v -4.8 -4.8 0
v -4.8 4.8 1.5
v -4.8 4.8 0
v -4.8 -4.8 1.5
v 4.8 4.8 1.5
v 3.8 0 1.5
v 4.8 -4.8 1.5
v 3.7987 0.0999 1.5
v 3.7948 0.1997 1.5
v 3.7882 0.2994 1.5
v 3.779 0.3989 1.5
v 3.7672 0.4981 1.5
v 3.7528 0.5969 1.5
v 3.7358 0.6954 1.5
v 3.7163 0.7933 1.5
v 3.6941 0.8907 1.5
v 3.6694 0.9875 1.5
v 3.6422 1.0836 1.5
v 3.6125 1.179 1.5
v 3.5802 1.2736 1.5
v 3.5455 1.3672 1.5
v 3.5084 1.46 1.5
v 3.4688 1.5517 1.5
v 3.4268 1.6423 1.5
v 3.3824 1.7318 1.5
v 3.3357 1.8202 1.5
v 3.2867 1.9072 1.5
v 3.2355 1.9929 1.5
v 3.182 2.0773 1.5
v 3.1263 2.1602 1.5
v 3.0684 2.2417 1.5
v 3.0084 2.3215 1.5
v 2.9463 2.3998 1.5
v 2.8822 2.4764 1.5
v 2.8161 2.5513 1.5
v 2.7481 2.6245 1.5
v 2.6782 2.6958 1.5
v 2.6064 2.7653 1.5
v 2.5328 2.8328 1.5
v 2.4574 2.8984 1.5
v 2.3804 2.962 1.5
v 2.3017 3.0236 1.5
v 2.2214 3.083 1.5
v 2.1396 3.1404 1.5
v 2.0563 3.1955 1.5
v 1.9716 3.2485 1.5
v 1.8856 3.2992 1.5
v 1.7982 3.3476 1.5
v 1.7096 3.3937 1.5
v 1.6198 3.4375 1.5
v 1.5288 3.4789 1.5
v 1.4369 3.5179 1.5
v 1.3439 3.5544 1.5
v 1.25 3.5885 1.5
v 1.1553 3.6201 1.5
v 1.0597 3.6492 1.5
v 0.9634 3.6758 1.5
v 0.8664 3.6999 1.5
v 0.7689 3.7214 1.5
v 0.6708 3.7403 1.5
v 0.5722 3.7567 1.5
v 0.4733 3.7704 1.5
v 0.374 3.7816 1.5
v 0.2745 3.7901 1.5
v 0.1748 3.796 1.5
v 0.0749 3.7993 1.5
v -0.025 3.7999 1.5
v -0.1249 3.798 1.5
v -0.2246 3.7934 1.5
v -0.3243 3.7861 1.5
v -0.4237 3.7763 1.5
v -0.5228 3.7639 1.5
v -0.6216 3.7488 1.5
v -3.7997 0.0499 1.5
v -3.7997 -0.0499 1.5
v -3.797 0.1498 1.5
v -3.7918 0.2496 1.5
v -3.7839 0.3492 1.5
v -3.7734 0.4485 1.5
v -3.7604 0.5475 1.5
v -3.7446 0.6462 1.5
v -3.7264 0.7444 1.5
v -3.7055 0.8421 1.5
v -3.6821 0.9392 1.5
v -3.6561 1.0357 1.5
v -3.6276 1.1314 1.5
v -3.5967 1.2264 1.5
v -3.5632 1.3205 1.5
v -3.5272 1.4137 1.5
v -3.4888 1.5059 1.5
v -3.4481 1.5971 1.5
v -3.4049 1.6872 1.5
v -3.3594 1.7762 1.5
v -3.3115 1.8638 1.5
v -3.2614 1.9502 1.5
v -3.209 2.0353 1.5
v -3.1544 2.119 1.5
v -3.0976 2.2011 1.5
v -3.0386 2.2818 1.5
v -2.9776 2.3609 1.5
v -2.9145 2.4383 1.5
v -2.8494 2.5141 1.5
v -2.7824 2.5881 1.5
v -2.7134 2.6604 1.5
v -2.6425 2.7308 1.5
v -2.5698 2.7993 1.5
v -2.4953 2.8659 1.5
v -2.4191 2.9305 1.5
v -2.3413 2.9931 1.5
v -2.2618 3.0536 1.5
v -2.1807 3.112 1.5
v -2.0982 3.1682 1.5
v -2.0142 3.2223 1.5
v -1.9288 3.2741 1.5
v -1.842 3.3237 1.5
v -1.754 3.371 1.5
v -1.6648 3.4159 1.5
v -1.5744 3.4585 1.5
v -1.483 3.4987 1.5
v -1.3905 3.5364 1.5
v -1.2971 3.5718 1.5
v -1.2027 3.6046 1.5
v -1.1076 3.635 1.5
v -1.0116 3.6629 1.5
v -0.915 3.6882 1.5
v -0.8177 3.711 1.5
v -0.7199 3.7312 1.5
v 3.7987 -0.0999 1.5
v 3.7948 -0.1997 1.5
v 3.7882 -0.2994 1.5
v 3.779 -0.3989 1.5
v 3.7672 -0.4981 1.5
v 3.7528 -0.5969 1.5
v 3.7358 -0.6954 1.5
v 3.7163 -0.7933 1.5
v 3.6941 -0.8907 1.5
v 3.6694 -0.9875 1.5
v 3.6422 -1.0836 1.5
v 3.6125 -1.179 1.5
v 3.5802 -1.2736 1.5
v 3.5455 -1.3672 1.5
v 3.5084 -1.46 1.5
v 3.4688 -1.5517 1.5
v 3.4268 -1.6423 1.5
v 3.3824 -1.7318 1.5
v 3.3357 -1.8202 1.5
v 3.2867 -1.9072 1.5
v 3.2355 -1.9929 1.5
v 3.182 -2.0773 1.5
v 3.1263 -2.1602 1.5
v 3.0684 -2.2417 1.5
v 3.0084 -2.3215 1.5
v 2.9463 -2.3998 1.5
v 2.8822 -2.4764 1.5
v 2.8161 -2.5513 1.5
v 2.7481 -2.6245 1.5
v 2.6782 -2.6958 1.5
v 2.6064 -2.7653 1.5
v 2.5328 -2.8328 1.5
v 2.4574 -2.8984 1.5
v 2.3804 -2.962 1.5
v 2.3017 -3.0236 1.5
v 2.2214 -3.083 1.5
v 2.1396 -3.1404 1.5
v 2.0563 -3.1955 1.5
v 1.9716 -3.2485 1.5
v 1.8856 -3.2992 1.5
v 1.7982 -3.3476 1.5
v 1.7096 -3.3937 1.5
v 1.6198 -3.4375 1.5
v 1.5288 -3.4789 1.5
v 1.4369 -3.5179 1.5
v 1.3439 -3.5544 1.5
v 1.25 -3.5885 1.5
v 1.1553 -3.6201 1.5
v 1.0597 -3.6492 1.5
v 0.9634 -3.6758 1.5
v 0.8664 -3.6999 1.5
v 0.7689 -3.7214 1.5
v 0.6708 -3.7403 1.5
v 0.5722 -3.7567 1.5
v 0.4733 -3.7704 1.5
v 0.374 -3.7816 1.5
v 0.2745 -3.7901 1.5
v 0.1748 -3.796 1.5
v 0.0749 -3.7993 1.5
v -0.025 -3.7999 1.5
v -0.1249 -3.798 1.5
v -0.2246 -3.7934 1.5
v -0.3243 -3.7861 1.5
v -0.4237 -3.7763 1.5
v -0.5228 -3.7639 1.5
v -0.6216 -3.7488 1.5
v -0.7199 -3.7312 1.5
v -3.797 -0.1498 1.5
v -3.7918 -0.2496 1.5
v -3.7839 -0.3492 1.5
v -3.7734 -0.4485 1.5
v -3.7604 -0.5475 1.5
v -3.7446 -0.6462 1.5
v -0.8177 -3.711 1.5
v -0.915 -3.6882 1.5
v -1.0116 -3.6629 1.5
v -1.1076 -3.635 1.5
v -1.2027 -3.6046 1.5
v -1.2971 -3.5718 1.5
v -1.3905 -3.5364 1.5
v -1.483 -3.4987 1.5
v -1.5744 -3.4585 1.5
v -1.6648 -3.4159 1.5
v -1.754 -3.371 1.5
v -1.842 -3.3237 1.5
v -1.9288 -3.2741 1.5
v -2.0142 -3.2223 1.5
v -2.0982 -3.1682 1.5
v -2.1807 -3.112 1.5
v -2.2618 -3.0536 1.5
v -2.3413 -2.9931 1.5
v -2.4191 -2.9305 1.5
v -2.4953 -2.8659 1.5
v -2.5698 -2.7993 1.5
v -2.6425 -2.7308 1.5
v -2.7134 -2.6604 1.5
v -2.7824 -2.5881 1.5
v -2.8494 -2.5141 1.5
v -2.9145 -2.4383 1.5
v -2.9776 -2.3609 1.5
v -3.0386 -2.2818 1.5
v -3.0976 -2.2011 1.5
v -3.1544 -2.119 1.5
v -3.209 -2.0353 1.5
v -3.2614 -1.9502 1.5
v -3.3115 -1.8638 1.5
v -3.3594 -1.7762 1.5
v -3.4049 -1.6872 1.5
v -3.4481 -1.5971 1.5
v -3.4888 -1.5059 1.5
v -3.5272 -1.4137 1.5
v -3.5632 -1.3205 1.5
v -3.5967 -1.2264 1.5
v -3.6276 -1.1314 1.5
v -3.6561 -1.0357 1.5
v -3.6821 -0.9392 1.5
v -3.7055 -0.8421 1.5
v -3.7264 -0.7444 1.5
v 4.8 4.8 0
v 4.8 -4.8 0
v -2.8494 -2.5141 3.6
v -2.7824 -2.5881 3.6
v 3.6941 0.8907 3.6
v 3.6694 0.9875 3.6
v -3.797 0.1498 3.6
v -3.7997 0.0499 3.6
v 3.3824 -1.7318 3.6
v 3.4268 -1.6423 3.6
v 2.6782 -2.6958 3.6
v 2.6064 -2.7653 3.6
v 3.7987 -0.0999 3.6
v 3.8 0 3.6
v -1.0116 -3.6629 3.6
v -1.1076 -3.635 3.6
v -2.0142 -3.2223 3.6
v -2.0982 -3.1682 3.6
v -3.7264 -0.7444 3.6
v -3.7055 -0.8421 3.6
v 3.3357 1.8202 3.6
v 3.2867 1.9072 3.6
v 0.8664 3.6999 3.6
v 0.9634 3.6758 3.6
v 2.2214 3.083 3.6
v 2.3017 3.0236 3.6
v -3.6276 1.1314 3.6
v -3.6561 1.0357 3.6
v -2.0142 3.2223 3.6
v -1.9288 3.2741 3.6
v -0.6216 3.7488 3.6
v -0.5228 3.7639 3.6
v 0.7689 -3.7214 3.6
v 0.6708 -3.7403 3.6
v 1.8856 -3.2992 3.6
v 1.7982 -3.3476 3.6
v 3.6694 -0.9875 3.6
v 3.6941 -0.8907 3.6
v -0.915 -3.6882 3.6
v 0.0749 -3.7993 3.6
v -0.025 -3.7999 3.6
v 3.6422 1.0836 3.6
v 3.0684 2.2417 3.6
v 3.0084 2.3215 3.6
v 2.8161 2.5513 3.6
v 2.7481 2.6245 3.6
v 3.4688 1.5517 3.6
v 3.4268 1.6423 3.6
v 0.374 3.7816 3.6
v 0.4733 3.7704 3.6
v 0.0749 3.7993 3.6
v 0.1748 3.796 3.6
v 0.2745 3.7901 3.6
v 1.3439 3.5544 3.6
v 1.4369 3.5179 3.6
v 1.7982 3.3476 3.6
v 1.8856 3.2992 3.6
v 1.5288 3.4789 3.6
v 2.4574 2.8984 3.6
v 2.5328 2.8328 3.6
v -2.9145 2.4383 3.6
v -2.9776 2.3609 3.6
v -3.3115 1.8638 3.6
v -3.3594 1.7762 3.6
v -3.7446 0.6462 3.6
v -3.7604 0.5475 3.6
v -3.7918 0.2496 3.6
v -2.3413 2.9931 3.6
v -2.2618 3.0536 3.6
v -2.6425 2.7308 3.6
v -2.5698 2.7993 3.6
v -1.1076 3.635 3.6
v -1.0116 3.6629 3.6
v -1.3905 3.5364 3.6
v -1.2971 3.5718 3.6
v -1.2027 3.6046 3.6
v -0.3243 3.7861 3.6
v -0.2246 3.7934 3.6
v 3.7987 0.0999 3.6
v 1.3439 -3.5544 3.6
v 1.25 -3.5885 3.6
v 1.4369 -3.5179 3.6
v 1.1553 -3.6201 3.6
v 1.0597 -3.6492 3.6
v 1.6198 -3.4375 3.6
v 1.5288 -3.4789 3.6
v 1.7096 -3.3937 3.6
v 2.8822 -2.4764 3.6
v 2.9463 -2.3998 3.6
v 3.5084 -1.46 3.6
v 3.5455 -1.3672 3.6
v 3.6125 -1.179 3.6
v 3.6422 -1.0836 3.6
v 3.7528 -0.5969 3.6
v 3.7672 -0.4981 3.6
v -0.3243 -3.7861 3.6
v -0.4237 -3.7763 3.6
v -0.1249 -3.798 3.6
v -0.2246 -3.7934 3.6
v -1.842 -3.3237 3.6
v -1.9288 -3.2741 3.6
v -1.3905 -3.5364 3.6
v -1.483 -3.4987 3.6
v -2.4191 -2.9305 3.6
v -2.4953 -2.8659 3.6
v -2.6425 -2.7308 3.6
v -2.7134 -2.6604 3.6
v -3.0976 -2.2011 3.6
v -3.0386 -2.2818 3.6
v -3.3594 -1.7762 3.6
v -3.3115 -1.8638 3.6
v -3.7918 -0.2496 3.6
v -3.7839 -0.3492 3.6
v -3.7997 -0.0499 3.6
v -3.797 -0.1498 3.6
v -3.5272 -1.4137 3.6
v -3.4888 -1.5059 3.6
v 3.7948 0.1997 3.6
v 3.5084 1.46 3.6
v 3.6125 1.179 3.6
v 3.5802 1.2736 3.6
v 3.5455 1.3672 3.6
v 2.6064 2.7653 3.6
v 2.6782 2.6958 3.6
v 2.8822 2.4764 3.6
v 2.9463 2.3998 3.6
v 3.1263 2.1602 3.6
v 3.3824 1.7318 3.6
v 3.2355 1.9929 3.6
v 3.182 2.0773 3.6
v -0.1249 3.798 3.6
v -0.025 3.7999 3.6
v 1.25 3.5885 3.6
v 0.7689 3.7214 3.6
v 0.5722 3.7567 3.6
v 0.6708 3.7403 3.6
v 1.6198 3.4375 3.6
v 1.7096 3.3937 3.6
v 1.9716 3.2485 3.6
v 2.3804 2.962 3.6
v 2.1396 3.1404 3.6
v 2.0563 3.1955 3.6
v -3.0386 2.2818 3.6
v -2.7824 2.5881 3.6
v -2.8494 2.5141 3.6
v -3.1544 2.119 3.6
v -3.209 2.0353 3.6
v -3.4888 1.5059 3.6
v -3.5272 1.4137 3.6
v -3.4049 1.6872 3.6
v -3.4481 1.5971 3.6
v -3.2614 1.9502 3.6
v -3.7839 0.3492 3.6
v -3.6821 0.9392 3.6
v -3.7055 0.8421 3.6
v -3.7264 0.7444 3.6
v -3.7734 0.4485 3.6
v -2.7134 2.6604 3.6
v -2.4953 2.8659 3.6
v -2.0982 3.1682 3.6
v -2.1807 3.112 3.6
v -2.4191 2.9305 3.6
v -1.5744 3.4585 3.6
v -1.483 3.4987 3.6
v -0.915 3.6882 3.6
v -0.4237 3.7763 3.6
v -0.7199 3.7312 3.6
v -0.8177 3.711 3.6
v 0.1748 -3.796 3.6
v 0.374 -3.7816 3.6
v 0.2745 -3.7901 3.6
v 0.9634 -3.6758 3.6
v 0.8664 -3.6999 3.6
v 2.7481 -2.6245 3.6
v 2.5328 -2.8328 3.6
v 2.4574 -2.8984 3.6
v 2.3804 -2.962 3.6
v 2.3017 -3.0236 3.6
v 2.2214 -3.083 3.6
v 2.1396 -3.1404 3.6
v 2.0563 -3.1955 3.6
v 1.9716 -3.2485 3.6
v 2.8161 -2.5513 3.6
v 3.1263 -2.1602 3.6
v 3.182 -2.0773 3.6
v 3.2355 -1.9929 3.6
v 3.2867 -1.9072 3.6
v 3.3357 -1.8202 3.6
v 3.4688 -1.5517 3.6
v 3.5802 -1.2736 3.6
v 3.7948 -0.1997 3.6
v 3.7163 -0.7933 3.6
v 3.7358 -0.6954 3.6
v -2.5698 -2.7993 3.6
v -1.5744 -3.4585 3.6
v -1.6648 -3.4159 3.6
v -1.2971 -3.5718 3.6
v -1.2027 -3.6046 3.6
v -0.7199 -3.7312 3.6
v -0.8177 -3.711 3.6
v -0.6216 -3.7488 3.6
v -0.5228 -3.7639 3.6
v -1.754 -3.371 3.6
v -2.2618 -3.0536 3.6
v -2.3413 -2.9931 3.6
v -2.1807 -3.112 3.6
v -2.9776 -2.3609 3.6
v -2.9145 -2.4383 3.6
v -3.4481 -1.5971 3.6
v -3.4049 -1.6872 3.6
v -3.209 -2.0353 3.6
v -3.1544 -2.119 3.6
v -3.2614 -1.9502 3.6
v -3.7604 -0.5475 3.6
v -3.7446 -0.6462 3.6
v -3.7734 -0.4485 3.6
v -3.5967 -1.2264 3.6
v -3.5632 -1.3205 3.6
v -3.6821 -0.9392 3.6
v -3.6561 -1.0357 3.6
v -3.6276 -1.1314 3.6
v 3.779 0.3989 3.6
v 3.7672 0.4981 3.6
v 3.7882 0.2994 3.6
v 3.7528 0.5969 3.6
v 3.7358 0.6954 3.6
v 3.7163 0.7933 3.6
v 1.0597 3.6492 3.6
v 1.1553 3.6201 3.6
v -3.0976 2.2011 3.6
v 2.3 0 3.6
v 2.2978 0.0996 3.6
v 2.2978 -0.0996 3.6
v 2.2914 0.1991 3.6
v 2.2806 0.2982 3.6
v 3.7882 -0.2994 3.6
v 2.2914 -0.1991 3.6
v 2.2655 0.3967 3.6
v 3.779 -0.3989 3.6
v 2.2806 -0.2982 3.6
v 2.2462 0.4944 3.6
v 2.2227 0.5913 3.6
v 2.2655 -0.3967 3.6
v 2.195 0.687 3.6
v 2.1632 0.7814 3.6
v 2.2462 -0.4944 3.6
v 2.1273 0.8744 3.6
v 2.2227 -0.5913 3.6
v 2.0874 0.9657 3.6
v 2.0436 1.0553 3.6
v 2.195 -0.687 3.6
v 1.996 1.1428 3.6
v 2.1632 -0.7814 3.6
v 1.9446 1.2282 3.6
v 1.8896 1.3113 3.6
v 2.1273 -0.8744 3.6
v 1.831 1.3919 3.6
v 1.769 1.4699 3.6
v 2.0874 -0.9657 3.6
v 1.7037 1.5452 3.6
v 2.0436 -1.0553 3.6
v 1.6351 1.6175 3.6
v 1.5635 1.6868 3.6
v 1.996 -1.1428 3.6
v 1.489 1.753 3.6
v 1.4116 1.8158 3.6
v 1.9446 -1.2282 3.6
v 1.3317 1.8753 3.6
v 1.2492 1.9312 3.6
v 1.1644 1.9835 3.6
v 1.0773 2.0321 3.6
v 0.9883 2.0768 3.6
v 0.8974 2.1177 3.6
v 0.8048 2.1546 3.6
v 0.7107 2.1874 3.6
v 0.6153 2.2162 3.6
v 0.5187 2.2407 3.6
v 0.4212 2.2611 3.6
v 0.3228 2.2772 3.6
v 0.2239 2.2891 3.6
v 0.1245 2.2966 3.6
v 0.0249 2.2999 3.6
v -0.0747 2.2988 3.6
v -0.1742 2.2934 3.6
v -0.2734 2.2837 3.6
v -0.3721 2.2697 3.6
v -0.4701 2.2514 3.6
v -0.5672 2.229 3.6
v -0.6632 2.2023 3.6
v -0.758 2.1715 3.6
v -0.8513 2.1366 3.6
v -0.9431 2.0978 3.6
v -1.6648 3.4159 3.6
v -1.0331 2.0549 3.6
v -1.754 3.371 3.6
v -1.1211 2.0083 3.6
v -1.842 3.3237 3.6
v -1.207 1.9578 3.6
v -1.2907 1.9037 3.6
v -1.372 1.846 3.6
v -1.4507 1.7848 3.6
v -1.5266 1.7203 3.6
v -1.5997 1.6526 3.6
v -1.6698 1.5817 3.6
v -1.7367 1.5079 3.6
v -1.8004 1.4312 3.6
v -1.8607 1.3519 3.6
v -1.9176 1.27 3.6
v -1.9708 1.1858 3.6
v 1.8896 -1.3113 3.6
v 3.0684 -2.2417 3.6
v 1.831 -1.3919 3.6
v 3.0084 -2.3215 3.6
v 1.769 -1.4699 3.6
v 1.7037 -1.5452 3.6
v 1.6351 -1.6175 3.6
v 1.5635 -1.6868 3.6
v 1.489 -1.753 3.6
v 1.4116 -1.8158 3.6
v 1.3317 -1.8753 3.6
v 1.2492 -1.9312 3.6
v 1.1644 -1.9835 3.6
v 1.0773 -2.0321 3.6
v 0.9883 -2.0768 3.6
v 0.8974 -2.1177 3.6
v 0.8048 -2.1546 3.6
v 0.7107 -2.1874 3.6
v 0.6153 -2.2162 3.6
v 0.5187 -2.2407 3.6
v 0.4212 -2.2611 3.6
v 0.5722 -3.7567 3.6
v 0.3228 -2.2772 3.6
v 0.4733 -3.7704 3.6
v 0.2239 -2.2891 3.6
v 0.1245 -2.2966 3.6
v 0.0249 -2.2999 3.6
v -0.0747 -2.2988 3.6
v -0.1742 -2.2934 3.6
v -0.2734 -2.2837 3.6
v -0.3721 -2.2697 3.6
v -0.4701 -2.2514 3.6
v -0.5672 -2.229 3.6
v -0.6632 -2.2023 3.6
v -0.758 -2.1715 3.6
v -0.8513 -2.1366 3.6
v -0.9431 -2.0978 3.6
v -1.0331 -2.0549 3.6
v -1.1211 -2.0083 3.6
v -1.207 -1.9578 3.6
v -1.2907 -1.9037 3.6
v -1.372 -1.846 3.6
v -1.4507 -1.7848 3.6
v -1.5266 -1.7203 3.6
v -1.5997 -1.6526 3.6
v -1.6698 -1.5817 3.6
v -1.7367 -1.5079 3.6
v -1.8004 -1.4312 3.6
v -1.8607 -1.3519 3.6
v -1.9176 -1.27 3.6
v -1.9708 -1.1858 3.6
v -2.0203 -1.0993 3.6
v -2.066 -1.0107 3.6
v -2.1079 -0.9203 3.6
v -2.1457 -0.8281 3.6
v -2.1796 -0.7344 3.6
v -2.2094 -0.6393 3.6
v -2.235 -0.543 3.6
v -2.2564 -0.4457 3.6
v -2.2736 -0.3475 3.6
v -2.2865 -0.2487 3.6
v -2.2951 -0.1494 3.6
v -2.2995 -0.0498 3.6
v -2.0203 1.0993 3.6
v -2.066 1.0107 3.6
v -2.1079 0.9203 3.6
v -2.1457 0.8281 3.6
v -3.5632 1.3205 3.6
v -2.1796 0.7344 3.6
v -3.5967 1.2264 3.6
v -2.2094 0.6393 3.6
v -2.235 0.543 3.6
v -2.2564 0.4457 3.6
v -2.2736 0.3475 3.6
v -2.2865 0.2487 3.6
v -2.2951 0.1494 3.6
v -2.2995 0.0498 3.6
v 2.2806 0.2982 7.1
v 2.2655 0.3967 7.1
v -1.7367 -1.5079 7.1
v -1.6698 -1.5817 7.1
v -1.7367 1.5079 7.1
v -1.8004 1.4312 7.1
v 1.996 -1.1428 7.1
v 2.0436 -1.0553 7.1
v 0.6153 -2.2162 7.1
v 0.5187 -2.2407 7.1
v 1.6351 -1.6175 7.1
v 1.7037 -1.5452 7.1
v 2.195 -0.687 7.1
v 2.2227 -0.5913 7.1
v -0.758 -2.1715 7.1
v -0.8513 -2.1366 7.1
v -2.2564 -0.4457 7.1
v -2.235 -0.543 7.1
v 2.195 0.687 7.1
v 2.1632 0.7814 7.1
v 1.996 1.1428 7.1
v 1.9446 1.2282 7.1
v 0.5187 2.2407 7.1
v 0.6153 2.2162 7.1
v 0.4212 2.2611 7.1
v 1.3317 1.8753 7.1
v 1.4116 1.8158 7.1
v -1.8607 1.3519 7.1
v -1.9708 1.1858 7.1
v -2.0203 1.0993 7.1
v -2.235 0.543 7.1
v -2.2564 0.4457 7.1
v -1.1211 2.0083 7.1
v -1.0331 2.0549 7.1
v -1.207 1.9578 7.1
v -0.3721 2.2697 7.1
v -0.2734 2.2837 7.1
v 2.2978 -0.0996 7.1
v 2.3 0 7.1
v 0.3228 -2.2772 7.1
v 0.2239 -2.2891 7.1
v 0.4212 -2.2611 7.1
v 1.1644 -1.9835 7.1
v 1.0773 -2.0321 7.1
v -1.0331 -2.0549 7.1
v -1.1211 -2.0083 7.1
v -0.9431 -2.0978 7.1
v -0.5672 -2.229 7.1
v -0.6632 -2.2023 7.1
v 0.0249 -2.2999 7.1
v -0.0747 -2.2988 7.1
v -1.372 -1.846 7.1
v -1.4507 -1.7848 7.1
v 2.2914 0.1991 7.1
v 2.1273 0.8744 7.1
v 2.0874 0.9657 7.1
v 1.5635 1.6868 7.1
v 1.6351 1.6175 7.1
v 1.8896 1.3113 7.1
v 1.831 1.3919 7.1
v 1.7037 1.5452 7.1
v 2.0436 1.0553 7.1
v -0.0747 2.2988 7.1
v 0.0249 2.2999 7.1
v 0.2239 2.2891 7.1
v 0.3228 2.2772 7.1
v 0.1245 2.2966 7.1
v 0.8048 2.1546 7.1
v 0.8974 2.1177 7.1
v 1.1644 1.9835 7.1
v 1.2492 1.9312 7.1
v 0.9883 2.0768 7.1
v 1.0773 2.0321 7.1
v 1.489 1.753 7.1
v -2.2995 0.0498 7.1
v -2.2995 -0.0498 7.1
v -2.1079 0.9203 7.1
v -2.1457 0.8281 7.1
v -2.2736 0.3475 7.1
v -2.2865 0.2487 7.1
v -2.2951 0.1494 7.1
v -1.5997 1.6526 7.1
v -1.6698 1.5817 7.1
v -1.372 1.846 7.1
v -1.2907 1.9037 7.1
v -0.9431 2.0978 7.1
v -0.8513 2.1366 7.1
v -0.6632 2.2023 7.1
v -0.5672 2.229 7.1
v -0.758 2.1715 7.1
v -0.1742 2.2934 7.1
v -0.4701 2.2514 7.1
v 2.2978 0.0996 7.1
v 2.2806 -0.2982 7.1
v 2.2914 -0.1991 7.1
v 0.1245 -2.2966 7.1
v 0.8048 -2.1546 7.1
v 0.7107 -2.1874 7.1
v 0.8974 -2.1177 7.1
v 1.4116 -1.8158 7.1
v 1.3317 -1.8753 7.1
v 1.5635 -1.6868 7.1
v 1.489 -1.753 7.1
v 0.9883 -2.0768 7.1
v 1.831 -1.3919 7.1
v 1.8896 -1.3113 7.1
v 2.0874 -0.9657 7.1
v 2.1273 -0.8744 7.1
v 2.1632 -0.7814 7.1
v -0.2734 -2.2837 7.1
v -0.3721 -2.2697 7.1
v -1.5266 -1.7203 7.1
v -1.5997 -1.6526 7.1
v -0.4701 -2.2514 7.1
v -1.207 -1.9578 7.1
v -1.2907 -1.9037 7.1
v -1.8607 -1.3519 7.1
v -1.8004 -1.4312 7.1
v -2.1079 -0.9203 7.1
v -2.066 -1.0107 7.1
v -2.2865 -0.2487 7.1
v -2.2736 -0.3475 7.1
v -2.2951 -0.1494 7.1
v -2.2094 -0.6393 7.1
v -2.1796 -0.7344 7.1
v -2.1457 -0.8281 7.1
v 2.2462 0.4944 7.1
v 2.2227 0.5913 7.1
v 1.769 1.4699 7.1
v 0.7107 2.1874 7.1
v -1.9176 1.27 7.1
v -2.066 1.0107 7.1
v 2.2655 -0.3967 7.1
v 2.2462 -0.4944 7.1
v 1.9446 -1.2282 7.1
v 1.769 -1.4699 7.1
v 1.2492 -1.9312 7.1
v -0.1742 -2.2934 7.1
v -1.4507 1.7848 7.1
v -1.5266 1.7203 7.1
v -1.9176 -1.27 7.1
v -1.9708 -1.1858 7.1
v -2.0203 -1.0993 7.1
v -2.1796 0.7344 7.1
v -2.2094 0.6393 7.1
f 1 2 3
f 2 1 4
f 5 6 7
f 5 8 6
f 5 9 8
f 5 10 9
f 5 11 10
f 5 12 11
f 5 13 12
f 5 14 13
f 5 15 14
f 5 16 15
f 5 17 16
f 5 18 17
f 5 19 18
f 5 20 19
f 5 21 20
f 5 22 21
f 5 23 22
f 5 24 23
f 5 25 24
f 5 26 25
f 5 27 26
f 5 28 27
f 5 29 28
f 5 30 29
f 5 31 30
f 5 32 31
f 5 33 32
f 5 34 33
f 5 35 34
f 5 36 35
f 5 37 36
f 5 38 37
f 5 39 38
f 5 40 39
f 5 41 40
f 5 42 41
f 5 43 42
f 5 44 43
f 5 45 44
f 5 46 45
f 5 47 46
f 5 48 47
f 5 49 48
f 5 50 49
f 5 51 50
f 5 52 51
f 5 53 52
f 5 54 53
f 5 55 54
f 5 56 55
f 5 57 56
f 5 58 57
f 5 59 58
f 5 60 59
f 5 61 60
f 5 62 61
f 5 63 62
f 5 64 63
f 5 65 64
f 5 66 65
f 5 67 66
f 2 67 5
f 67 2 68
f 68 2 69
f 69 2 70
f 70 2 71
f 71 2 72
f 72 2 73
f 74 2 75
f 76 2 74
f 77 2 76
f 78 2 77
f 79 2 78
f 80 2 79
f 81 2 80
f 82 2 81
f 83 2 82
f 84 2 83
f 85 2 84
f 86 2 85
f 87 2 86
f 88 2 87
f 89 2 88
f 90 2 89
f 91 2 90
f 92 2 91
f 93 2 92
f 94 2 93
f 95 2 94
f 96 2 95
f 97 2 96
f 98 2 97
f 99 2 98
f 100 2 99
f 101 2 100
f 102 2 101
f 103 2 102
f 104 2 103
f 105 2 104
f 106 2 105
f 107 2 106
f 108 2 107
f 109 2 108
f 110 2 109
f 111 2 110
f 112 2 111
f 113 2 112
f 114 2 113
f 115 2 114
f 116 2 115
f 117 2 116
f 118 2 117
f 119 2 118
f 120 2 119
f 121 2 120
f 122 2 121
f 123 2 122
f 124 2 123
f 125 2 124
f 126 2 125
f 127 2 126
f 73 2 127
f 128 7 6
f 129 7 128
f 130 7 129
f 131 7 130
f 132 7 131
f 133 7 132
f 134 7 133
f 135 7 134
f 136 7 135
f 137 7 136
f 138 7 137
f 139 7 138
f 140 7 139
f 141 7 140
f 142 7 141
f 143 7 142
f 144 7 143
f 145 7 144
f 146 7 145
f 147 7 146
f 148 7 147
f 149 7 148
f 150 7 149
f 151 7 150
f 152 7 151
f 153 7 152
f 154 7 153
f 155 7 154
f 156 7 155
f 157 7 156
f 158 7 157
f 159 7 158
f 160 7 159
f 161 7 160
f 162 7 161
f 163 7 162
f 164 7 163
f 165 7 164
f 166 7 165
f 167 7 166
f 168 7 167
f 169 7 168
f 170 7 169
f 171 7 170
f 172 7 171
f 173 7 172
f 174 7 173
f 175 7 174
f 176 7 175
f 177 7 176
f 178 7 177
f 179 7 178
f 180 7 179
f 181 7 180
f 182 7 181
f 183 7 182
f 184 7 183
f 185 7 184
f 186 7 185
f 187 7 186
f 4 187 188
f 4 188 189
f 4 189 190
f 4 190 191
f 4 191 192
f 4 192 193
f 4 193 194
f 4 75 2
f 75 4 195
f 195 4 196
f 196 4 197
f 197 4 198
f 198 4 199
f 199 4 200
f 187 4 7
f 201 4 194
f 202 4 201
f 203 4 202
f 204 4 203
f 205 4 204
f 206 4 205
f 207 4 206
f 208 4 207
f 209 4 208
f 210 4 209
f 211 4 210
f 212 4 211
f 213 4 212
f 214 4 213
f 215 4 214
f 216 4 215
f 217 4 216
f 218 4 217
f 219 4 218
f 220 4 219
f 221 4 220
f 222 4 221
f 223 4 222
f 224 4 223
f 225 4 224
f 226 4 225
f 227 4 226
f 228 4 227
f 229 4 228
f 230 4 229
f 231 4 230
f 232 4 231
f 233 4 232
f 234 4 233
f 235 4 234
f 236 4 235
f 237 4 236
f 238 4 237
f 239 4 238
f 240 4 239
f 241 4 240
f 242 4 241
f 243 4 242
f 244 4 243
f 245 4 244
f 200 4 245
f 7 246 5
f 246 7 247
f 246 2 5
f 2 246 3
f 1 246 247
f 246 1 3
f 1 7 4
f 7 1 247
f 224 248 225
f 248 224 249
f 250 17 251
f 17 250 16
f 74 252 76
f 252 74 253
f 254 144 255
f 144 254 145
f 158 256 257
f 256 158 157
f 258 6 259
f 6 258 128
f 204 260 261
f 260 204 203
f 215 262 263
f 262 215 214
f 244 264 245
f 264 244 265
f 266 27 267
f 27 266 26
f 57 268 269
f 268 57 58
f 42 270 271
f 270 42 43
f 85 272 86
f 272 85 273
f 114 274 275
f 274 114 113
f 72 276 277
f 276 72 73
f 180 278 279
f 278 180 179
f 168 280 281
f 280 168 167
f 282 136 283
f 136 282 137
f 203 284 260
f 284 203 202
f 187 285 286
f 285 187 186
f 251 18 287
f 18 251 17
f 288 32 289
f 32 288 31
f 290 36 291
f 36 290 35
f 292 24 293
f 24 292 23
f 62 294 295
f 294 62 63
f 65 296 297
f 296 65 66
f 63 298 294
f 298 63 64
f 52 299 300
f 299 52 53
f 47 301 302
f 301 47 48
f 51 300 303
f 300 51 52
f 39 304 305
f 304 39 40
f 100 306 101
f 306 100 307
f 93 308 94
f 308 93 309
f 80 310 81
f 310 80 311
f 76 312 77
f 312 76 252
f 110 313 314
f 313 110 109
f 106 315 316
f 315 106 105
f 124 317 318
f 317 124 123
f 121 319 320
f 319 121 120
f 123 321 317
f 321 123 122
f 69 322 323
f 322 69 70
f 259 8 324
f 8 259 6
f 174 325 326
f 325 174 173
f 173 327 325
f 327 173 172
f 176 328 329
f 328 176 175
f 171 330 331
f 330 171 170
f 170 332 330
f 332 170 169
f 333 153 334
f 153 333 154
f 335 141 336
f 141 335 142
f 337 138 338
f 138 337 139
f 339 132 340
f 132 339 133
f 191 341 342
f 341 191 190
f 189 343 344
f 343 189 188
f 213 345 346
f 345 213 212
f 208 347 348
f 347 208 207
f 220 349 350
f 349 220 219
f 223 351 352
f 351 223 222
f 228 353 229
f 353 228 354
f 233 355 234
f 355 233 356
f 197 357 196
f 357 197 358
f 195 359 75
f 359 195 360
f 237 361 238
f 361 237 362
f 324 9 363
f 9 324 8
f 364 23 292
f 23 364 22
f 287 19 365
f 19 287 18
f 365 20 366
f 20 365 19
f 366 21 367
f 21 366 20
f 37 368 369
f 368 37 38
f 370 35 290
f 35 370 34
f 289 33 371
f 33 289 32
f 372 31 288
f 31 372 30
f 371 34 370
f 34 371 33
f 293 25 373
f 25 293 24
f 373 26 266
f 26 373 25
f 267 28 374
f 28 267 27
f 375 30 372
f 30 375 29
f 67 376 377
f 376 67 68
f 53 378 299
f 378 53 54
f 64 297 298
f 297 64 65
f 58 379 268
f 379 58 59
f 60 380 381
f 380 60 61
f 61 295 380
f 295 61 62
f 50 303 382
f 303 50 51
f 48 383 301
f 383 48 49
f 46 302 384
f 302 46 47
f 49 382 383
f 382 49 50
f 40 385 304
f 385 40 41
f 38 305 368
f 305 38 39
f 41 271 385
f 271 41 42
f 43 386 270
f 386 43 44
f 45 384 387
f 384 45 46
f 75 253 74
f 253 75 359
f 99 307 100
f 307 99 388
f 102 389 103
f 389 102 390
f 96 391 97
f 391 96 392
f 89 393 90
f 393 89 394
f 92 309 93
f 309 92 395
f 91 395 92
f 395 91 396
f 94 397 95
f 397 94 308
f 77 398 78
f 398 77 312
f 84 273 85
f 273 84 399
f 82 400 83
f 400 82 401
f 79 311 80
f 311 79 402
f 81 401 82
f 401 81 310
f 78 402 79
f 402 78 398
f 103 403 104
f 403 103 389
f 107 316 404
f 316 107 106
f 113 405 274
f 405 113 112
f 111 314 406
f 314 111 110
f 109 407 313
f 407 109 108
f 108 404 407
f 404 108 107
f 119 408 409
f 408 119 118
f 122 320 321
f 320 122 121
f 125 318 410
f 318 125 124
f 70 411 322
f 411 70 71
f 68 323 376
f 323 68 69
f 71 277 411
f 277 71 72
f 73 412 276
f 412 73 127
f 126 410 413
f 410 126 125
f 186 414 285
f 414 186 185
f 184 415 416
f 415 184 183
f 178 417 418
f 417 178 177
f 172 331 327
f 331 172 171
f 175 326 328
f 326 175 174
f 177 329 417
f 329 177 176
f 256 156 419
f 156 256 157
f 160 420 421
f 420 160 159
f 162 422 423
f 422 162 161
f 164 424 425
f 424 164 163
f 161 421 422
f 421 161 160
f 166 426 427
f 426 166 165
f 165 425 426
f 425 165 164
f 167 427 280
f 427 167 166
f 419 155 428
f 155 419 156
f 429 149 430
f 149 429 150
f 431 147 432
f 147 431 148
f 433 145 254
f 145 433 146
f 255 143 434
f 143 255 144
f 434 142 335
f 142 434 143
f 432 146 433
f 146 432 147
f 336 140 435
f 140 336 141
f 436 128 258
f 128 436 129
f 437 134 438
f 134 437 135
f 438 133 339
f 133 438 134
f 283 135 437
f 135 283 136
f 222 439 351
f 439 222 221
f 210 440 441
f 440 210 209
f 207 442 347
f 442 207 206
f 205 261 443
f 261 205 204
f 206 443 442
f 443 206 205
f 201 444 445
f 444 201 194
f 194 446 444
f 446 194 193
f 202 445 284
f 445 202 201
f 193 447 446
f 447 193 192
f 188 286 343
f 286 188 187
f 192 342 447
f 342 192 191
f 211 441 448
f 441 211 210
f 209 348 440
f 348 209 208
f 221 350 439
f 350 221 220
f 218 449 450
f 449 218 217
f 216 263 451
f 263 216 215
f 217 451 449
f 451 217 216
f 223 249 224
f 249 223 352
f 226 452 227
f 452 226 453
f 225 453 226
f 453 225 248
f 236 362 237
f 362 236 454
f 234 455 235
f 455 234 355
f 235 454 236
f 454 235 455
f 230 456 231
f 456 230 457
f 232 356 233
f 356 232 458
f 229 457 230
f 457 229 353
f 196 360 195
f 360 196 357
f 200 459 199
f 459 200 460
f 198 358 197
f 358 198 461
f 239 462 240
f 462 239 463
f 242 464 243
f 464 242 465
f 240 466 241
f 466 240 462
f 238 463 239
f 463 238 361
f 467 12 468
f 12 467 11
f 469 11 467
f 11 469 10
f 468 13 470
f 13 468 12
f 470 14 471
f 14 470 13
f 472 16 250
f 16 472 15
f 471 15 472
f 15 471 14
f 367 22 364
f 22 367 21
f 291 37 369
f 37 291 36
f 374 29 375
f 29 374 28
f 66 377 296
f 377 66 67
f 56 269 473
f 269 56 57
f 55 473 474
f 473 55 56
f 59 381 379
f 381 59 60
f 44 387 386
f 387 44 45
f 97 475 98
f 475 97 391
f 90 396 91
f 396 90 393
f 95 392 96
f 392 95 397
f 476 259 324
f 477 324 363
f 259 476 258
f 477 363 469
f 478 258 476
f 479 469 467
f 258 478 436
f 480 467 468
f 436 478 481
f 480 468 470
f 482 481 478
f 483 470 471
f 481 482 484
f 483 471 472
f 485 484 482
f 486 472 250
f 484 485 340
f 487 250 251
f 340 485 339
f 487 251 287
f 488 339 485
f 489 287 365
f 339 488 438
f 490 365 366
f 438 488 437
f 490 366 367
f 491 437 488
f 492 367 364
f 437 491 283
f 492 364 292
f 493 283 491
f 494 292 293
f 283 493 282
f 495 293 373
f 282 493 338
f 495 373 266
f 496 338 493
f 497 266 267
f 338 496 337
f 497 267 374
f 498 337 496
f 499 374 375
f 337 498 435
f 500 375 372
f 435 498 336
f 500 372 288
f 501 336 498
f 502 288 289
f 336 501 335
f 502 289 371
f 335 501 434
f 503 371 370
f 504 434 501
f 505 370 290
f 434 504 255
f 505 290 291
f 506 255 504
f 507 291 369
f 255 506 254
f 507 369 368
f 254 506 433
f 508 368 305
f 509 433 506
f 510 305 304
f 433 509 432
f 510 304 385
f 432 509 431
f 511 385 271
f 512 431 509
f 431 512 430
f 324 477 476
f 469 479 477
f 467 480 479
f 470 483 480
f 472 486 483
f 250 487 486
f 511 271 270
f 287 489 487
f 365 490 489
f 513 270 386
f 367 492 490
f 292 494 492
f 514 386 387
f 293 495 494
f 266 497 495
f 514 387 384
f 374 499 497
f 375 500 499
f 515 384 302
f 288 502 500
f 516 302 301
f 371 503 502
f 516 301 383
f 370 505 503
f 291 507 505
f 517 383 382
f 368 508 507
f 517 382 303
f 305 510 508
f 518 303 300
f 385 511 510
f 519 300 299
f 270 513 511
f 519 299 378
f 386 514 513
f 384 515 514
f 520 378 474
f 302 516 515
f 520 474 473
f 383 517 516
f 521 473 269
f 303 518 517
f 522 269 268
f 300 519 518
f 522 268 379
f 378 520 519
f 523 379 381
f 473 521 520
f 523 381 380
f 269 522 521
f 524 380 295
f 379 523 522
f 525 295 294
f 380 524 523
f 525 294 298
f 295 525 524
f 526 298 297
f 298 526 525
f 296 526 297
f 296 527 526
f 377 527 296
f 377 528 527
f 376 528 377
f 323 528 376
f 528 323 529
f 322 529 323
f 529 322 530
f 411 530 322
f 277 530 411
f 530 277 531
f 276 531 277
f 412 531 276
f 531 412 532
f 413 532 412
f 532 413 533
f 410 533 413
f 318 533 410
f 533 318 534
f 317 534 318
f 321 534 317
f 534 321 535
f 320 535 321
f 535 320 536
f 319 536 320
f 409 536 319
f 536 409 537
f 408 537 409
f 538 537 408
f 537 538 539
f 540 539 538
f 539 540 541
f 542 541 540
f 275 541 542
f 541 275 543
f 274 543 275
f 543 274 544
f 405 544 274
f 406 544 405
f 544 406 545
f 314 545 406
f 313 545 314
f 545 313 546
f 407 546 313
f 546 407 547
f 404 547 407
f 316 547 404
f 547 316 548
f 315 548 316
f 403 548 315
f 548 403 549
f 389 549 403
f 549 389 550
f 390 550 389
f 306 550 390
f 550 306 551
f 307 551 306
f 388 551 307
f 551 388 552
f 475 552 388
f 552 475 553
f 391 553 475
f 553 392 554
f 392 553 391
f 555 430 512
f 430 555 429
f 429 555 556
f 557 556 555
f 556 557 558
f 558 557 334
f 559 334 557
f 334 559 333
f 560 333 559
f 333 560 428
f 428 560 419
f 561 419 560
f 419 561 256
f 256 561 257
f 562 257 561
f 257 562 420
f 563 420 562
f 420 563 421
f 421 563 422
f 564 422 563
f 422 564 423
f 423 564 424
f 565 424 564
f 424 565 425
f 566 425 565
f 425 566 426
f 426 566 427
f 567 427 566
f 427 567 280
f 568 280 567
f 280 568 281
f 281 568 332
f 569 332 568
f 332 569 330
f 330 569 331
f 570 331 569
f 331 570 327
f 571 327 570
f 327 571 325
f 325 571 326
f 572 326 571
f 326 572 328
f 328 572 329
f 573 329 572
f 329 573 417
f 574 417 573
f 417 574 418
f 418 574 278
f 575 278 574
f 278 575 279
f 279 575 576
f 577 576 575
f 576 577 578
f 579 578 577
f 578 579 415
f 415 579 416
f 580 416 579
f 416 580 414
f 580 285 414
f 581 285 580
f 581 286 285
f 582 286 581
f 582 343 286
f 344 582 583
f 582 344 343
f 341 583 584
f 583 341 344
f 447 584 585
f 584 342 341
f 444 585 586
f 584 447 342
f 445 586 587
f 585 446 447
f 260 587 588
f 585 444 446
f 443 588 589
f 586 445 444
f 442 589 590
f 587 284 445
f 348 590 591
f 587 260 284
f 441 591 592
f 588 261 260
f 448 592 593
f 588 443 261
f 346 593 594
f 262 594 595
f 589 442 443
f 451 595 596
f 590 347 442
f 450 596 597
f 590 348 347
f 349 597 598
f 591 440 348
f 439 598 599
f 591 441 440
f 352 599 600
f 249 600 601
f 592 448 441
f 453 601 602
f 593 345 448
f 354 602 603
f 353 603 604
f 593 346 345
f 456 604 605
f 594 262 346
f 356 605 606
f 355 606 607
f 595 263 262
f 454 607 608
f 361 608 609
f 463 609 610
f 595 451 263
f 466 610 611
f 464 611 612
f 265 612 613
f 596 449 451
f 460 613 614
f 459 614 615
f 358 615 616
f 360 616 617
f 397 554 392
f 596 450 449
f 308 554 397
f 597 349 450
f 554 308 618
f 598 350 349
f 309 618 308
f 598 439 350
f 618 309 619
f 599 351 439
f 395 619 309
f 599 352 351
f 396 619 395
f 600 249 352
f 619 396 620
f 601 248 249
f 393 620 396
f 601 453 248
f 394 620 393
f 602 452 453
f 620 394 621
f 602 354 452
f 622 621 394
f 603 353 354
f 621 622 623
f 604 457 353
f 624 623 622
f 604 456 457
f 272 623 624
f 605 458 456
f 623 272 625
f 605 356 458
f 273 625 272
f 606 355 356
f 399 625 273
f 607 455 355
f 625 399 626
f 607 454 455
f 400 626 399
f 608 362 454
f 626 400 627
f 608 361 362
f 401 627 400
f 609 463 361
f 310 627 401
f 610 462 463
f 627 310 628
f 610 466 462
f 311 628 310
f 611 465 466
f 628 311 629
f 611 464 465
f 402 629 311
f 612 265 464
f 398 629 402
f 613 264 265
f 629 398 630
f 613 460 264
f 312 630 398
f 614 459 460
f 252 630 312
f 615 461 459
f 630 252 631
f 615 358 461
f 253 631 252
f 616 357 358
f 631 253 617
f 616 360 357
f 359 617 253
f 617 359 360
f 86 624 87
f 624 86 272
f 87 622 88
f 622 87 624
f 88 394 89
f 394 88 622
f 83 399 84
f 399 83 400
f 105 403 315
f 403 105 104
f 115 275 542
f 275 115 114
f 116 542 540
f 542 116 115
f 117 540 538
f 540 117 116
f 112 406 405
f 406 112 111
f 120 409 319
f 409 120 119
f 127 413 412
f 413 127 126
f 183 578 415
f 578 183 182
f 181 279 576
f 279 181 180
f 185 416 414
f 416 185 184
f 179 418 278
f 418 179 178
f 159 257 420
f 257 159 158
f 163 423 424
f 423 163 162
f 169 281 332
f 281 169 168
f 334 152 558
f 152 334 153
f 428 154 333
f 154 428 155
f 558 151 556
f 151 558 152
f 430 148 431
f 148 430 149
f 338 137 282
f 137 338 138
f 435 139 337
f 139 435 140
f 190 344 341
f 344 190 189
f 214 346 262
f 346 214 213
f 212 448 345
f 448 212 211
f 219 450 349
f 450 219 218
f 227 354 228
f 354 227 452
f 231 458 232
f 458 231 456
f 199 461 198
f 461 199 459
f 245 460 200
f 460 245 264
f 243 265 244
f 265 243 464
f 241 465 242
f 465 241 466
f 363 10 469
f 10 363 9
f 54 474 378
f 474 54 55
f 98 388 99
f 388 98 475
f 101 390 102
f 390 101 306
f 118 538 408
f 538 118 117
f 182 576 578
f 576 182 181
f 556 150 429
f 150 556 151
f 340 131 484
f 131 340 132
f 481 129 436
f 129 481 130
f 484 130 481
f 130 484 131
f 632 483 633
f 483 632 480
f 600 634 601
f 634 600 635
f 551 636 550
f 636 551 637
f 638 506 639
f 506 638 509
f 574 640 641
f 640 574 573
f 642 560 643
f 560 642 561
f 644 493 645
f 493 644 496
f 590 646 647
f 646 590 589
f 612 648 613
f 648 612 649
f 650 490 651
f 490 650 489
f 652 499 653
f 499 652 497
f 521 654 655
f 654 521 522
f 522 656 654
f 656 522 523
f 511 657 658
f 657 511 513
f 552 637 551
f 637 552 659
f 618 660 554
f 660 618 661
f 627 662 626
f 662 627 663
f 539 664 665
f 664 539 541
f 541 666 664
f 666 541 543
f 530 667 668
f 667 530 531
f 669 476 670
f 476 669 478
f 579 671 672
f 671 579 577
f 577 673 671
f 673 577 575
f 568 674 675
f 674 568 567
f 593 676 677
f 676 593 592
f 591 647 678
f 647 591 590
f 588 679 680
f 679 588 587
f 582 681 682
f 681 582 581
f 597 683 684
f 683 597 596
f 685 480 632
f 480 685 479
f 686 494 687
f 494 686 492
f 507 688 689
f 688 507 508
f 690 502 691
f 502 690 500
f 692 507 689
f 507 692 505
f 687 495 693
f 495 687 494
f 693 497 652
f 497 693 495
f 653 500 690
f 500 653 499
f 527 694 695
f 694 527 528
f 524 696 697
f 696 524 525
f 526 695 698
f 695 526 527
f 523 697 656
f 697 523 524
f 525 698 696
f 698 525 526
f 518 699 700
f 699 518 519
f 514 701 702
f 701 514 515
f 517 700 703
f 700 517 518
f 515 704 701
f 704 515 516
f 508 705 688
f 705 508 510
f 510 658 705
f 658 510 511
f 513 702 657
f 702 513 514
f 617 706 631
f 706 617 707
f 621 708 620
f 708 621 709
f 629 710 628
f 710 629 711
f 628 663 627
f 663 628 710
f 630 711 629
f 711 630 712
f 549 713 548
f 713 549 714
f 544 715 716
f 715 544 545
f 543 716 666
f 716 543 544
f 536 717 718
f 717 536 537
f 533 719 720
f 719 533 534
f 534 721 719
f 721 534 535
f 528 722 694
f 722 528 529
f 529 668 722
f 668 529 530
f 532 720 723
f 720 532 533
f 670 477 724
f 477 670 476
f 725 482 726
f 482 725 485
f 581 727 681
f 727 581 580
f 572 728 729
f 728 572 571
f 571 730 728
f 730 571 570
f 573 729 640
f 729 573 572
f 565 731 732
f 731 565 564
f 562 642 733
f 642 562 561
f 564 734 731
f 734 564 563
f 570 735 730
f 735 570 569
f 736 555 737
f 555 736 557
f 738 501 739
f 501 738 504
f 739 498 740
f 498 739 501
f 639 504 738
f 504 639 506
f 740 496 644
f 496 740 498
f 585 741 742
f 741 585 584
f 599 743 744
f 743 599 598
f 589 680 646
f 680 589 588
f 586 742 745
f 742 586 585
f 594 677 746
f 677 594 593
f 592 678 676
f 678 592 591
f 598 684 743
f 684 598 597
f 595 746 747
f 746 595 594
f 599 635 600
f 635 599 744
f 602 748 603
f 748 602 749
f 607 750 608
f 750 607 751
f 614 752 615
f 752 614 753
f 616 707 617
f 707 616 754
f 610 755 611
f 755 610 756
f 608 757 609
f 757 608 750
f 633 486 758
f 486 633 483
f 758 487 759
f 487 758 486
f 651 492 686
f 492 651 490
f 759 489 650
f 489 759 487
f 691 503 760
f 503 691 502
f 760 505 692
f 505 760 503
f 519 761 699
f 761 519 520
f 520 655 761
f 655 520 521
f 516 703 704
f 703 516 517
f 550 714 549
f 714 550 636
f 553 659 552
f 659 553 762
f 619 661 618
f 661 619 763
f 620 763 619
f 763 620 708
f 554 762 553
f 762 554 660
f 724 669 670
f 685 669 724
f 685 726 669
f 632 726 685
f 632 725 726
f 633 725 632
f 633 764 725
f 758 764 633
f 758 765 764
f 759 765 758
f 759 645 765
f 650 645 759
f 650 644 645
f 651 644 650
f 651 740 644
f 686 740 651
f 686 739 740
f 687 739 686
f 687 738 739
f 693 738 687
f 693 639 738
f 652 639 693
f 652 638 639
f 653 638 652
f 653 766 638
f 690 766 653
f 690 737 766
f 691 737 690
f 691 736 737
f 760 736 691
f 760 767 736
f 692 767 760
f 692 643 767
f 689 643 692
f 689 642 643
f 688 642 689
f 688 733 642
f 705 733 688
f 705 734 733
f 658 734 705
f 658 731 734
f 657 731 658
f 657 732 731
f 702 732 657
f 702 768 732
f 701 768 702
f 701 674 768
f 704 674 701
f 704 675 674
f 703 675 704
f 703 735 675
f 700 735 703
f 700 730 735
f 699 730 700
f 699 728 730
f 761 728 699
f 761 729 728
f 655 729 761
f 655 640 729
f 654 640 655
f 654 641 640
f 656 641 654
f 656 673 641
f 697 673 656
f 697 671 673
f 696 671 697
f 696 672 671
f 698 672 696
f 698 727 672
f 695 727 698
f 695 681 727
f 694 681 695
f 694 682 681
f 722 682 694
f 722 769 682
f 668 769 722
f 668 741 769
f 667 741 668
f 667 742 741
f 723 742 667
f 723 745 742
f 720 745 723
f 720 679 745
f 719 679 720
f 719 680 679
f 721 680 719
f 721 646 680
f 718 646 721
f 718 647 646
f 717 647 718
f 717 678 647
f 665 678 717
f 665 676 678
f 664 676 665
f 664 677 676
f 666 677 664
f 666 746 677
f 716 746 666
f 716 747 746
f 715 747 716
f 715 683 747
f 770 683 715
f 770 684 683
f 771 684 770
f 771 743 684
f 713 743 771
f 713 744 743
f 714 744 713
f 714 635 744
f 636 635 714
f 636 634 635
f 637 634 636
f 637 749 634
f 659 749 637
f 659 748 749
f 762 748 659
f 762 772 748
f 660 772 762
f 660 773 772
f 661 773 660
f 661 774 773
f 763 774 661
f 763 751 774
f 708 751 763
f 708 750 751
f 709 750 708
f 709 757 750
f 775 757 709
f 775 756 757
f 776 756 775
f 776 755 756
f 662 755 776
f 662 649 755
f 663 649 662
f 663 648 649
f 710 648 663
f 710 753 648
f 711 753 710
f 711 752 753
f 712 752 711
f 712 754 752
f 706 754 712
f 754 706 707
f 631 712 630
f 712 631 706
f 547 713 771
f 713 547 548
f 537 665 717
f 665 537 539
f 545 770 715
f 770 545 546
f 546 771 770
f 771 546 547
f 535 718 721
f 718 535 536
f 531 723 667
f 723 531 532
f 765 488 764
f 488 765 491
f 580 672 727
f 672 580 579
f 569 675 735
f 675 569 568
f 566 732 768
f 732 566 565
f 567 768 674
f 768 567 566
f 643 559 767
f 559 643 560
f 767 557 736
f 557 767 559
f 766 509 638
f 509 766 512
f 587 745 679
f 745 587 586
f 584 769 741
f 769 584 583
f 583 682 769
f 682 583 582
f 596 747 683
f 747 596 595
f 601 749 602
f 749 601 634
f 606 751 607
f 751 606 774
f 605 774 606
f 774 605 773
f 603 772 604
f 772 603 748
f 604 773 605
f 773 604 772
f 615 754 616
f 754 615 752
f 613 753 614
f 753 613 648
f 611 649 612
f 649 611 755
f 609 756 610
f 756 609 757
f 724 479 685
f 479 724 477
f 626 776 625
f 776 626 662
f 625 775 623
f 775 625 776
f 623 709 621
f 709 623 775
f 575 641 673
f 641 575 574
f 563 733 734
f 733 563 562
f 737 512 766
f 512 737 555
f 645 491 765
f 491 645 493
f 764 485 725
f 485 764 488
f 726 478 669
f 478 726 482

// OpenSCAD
// file: include_constants.scad
servo_holder_gap_bottom = 0;
servo_holder_gap_side= 0.4;
servo_holder_wall_size_bottom = 3;
servo_holder_wall_size_side = 1;
servo_holder_hole_extra = 2;
servo_holder_mount_hole_d = 2;
servo_holder_wall_h = 10;
servo_holder_cable_extra_room = 2.5;
servo_holder_cable_extra_room_r = 10;

servo_arm_bracket_size = 3.5;
servo_arm_extra_dist = 2;	// 0 is the minimal non-touching distance
servo_arm_thickness = 3.5;
servo_arm_servo_shaft_ring_thickness = 2;
servo_arm_passage_extra_w = 0.5; // 0 is exactly the size of the servo shaft
servo_horn_rim = 0.2;

shaft_d = 5;
shaft_h = servo_arm_thickness;
shaft_base1_l = 10;
shaft_base1_h = servo_holder_wall_size_bottom / 2;
shaft_base2_d = 8;
shaft_base2_h = servo_holder_wall_size_bottom / 2;
shaft_base2_extra_h = 0.6;	// (to act like a washer)
shaft_hole_extra_h = 0.5;
shaft_fa = 1;
shaft_fs = 0.1;

bevel_r = 1.5;
bevel_subdivisions = 8;

module simple_bevel(posizione, direzione, normale, lunghezza)
{
  c = [posizione, direzione, 0];
  n = [posizione, normale, 0];
  bevel(c, n, cres = bevel_subdivisions, cr = bevel_r, l = lunghezza); 
}
// main file
include <include_constants.scad>

// 0.2 when fast, 0.1 when slow and precise
shaft_gap = 0.2;

shaft();

module shaft()
{
	$fa = shaft_fa;
	$fs = shaft_fs;
	
	// square base
	translate([-shaft_base1_l / 2 + shaft_gap, -shaft_base1_l / 2 + shaft_gap, 0])
		cube([shaft_base1_l - shaft_gap * 2, shaft_base1_l - shaft_gap * 2, shaft_base1_h]);

	// round base
	translate([0, 0, shaft_base1_h])
		cylinder(d=shaft_base2_d - shaft_gap * 2, h=shaft_base2_h + shaft_base2_extra_h);
	
	// shaft
	translate([0, 0, shaft_base1_h + shaft_base2_h + shaft_base2_extra_h])
		cylinder(d=shaft_d - shaft_gap * 2, h=shaft_h);
}
